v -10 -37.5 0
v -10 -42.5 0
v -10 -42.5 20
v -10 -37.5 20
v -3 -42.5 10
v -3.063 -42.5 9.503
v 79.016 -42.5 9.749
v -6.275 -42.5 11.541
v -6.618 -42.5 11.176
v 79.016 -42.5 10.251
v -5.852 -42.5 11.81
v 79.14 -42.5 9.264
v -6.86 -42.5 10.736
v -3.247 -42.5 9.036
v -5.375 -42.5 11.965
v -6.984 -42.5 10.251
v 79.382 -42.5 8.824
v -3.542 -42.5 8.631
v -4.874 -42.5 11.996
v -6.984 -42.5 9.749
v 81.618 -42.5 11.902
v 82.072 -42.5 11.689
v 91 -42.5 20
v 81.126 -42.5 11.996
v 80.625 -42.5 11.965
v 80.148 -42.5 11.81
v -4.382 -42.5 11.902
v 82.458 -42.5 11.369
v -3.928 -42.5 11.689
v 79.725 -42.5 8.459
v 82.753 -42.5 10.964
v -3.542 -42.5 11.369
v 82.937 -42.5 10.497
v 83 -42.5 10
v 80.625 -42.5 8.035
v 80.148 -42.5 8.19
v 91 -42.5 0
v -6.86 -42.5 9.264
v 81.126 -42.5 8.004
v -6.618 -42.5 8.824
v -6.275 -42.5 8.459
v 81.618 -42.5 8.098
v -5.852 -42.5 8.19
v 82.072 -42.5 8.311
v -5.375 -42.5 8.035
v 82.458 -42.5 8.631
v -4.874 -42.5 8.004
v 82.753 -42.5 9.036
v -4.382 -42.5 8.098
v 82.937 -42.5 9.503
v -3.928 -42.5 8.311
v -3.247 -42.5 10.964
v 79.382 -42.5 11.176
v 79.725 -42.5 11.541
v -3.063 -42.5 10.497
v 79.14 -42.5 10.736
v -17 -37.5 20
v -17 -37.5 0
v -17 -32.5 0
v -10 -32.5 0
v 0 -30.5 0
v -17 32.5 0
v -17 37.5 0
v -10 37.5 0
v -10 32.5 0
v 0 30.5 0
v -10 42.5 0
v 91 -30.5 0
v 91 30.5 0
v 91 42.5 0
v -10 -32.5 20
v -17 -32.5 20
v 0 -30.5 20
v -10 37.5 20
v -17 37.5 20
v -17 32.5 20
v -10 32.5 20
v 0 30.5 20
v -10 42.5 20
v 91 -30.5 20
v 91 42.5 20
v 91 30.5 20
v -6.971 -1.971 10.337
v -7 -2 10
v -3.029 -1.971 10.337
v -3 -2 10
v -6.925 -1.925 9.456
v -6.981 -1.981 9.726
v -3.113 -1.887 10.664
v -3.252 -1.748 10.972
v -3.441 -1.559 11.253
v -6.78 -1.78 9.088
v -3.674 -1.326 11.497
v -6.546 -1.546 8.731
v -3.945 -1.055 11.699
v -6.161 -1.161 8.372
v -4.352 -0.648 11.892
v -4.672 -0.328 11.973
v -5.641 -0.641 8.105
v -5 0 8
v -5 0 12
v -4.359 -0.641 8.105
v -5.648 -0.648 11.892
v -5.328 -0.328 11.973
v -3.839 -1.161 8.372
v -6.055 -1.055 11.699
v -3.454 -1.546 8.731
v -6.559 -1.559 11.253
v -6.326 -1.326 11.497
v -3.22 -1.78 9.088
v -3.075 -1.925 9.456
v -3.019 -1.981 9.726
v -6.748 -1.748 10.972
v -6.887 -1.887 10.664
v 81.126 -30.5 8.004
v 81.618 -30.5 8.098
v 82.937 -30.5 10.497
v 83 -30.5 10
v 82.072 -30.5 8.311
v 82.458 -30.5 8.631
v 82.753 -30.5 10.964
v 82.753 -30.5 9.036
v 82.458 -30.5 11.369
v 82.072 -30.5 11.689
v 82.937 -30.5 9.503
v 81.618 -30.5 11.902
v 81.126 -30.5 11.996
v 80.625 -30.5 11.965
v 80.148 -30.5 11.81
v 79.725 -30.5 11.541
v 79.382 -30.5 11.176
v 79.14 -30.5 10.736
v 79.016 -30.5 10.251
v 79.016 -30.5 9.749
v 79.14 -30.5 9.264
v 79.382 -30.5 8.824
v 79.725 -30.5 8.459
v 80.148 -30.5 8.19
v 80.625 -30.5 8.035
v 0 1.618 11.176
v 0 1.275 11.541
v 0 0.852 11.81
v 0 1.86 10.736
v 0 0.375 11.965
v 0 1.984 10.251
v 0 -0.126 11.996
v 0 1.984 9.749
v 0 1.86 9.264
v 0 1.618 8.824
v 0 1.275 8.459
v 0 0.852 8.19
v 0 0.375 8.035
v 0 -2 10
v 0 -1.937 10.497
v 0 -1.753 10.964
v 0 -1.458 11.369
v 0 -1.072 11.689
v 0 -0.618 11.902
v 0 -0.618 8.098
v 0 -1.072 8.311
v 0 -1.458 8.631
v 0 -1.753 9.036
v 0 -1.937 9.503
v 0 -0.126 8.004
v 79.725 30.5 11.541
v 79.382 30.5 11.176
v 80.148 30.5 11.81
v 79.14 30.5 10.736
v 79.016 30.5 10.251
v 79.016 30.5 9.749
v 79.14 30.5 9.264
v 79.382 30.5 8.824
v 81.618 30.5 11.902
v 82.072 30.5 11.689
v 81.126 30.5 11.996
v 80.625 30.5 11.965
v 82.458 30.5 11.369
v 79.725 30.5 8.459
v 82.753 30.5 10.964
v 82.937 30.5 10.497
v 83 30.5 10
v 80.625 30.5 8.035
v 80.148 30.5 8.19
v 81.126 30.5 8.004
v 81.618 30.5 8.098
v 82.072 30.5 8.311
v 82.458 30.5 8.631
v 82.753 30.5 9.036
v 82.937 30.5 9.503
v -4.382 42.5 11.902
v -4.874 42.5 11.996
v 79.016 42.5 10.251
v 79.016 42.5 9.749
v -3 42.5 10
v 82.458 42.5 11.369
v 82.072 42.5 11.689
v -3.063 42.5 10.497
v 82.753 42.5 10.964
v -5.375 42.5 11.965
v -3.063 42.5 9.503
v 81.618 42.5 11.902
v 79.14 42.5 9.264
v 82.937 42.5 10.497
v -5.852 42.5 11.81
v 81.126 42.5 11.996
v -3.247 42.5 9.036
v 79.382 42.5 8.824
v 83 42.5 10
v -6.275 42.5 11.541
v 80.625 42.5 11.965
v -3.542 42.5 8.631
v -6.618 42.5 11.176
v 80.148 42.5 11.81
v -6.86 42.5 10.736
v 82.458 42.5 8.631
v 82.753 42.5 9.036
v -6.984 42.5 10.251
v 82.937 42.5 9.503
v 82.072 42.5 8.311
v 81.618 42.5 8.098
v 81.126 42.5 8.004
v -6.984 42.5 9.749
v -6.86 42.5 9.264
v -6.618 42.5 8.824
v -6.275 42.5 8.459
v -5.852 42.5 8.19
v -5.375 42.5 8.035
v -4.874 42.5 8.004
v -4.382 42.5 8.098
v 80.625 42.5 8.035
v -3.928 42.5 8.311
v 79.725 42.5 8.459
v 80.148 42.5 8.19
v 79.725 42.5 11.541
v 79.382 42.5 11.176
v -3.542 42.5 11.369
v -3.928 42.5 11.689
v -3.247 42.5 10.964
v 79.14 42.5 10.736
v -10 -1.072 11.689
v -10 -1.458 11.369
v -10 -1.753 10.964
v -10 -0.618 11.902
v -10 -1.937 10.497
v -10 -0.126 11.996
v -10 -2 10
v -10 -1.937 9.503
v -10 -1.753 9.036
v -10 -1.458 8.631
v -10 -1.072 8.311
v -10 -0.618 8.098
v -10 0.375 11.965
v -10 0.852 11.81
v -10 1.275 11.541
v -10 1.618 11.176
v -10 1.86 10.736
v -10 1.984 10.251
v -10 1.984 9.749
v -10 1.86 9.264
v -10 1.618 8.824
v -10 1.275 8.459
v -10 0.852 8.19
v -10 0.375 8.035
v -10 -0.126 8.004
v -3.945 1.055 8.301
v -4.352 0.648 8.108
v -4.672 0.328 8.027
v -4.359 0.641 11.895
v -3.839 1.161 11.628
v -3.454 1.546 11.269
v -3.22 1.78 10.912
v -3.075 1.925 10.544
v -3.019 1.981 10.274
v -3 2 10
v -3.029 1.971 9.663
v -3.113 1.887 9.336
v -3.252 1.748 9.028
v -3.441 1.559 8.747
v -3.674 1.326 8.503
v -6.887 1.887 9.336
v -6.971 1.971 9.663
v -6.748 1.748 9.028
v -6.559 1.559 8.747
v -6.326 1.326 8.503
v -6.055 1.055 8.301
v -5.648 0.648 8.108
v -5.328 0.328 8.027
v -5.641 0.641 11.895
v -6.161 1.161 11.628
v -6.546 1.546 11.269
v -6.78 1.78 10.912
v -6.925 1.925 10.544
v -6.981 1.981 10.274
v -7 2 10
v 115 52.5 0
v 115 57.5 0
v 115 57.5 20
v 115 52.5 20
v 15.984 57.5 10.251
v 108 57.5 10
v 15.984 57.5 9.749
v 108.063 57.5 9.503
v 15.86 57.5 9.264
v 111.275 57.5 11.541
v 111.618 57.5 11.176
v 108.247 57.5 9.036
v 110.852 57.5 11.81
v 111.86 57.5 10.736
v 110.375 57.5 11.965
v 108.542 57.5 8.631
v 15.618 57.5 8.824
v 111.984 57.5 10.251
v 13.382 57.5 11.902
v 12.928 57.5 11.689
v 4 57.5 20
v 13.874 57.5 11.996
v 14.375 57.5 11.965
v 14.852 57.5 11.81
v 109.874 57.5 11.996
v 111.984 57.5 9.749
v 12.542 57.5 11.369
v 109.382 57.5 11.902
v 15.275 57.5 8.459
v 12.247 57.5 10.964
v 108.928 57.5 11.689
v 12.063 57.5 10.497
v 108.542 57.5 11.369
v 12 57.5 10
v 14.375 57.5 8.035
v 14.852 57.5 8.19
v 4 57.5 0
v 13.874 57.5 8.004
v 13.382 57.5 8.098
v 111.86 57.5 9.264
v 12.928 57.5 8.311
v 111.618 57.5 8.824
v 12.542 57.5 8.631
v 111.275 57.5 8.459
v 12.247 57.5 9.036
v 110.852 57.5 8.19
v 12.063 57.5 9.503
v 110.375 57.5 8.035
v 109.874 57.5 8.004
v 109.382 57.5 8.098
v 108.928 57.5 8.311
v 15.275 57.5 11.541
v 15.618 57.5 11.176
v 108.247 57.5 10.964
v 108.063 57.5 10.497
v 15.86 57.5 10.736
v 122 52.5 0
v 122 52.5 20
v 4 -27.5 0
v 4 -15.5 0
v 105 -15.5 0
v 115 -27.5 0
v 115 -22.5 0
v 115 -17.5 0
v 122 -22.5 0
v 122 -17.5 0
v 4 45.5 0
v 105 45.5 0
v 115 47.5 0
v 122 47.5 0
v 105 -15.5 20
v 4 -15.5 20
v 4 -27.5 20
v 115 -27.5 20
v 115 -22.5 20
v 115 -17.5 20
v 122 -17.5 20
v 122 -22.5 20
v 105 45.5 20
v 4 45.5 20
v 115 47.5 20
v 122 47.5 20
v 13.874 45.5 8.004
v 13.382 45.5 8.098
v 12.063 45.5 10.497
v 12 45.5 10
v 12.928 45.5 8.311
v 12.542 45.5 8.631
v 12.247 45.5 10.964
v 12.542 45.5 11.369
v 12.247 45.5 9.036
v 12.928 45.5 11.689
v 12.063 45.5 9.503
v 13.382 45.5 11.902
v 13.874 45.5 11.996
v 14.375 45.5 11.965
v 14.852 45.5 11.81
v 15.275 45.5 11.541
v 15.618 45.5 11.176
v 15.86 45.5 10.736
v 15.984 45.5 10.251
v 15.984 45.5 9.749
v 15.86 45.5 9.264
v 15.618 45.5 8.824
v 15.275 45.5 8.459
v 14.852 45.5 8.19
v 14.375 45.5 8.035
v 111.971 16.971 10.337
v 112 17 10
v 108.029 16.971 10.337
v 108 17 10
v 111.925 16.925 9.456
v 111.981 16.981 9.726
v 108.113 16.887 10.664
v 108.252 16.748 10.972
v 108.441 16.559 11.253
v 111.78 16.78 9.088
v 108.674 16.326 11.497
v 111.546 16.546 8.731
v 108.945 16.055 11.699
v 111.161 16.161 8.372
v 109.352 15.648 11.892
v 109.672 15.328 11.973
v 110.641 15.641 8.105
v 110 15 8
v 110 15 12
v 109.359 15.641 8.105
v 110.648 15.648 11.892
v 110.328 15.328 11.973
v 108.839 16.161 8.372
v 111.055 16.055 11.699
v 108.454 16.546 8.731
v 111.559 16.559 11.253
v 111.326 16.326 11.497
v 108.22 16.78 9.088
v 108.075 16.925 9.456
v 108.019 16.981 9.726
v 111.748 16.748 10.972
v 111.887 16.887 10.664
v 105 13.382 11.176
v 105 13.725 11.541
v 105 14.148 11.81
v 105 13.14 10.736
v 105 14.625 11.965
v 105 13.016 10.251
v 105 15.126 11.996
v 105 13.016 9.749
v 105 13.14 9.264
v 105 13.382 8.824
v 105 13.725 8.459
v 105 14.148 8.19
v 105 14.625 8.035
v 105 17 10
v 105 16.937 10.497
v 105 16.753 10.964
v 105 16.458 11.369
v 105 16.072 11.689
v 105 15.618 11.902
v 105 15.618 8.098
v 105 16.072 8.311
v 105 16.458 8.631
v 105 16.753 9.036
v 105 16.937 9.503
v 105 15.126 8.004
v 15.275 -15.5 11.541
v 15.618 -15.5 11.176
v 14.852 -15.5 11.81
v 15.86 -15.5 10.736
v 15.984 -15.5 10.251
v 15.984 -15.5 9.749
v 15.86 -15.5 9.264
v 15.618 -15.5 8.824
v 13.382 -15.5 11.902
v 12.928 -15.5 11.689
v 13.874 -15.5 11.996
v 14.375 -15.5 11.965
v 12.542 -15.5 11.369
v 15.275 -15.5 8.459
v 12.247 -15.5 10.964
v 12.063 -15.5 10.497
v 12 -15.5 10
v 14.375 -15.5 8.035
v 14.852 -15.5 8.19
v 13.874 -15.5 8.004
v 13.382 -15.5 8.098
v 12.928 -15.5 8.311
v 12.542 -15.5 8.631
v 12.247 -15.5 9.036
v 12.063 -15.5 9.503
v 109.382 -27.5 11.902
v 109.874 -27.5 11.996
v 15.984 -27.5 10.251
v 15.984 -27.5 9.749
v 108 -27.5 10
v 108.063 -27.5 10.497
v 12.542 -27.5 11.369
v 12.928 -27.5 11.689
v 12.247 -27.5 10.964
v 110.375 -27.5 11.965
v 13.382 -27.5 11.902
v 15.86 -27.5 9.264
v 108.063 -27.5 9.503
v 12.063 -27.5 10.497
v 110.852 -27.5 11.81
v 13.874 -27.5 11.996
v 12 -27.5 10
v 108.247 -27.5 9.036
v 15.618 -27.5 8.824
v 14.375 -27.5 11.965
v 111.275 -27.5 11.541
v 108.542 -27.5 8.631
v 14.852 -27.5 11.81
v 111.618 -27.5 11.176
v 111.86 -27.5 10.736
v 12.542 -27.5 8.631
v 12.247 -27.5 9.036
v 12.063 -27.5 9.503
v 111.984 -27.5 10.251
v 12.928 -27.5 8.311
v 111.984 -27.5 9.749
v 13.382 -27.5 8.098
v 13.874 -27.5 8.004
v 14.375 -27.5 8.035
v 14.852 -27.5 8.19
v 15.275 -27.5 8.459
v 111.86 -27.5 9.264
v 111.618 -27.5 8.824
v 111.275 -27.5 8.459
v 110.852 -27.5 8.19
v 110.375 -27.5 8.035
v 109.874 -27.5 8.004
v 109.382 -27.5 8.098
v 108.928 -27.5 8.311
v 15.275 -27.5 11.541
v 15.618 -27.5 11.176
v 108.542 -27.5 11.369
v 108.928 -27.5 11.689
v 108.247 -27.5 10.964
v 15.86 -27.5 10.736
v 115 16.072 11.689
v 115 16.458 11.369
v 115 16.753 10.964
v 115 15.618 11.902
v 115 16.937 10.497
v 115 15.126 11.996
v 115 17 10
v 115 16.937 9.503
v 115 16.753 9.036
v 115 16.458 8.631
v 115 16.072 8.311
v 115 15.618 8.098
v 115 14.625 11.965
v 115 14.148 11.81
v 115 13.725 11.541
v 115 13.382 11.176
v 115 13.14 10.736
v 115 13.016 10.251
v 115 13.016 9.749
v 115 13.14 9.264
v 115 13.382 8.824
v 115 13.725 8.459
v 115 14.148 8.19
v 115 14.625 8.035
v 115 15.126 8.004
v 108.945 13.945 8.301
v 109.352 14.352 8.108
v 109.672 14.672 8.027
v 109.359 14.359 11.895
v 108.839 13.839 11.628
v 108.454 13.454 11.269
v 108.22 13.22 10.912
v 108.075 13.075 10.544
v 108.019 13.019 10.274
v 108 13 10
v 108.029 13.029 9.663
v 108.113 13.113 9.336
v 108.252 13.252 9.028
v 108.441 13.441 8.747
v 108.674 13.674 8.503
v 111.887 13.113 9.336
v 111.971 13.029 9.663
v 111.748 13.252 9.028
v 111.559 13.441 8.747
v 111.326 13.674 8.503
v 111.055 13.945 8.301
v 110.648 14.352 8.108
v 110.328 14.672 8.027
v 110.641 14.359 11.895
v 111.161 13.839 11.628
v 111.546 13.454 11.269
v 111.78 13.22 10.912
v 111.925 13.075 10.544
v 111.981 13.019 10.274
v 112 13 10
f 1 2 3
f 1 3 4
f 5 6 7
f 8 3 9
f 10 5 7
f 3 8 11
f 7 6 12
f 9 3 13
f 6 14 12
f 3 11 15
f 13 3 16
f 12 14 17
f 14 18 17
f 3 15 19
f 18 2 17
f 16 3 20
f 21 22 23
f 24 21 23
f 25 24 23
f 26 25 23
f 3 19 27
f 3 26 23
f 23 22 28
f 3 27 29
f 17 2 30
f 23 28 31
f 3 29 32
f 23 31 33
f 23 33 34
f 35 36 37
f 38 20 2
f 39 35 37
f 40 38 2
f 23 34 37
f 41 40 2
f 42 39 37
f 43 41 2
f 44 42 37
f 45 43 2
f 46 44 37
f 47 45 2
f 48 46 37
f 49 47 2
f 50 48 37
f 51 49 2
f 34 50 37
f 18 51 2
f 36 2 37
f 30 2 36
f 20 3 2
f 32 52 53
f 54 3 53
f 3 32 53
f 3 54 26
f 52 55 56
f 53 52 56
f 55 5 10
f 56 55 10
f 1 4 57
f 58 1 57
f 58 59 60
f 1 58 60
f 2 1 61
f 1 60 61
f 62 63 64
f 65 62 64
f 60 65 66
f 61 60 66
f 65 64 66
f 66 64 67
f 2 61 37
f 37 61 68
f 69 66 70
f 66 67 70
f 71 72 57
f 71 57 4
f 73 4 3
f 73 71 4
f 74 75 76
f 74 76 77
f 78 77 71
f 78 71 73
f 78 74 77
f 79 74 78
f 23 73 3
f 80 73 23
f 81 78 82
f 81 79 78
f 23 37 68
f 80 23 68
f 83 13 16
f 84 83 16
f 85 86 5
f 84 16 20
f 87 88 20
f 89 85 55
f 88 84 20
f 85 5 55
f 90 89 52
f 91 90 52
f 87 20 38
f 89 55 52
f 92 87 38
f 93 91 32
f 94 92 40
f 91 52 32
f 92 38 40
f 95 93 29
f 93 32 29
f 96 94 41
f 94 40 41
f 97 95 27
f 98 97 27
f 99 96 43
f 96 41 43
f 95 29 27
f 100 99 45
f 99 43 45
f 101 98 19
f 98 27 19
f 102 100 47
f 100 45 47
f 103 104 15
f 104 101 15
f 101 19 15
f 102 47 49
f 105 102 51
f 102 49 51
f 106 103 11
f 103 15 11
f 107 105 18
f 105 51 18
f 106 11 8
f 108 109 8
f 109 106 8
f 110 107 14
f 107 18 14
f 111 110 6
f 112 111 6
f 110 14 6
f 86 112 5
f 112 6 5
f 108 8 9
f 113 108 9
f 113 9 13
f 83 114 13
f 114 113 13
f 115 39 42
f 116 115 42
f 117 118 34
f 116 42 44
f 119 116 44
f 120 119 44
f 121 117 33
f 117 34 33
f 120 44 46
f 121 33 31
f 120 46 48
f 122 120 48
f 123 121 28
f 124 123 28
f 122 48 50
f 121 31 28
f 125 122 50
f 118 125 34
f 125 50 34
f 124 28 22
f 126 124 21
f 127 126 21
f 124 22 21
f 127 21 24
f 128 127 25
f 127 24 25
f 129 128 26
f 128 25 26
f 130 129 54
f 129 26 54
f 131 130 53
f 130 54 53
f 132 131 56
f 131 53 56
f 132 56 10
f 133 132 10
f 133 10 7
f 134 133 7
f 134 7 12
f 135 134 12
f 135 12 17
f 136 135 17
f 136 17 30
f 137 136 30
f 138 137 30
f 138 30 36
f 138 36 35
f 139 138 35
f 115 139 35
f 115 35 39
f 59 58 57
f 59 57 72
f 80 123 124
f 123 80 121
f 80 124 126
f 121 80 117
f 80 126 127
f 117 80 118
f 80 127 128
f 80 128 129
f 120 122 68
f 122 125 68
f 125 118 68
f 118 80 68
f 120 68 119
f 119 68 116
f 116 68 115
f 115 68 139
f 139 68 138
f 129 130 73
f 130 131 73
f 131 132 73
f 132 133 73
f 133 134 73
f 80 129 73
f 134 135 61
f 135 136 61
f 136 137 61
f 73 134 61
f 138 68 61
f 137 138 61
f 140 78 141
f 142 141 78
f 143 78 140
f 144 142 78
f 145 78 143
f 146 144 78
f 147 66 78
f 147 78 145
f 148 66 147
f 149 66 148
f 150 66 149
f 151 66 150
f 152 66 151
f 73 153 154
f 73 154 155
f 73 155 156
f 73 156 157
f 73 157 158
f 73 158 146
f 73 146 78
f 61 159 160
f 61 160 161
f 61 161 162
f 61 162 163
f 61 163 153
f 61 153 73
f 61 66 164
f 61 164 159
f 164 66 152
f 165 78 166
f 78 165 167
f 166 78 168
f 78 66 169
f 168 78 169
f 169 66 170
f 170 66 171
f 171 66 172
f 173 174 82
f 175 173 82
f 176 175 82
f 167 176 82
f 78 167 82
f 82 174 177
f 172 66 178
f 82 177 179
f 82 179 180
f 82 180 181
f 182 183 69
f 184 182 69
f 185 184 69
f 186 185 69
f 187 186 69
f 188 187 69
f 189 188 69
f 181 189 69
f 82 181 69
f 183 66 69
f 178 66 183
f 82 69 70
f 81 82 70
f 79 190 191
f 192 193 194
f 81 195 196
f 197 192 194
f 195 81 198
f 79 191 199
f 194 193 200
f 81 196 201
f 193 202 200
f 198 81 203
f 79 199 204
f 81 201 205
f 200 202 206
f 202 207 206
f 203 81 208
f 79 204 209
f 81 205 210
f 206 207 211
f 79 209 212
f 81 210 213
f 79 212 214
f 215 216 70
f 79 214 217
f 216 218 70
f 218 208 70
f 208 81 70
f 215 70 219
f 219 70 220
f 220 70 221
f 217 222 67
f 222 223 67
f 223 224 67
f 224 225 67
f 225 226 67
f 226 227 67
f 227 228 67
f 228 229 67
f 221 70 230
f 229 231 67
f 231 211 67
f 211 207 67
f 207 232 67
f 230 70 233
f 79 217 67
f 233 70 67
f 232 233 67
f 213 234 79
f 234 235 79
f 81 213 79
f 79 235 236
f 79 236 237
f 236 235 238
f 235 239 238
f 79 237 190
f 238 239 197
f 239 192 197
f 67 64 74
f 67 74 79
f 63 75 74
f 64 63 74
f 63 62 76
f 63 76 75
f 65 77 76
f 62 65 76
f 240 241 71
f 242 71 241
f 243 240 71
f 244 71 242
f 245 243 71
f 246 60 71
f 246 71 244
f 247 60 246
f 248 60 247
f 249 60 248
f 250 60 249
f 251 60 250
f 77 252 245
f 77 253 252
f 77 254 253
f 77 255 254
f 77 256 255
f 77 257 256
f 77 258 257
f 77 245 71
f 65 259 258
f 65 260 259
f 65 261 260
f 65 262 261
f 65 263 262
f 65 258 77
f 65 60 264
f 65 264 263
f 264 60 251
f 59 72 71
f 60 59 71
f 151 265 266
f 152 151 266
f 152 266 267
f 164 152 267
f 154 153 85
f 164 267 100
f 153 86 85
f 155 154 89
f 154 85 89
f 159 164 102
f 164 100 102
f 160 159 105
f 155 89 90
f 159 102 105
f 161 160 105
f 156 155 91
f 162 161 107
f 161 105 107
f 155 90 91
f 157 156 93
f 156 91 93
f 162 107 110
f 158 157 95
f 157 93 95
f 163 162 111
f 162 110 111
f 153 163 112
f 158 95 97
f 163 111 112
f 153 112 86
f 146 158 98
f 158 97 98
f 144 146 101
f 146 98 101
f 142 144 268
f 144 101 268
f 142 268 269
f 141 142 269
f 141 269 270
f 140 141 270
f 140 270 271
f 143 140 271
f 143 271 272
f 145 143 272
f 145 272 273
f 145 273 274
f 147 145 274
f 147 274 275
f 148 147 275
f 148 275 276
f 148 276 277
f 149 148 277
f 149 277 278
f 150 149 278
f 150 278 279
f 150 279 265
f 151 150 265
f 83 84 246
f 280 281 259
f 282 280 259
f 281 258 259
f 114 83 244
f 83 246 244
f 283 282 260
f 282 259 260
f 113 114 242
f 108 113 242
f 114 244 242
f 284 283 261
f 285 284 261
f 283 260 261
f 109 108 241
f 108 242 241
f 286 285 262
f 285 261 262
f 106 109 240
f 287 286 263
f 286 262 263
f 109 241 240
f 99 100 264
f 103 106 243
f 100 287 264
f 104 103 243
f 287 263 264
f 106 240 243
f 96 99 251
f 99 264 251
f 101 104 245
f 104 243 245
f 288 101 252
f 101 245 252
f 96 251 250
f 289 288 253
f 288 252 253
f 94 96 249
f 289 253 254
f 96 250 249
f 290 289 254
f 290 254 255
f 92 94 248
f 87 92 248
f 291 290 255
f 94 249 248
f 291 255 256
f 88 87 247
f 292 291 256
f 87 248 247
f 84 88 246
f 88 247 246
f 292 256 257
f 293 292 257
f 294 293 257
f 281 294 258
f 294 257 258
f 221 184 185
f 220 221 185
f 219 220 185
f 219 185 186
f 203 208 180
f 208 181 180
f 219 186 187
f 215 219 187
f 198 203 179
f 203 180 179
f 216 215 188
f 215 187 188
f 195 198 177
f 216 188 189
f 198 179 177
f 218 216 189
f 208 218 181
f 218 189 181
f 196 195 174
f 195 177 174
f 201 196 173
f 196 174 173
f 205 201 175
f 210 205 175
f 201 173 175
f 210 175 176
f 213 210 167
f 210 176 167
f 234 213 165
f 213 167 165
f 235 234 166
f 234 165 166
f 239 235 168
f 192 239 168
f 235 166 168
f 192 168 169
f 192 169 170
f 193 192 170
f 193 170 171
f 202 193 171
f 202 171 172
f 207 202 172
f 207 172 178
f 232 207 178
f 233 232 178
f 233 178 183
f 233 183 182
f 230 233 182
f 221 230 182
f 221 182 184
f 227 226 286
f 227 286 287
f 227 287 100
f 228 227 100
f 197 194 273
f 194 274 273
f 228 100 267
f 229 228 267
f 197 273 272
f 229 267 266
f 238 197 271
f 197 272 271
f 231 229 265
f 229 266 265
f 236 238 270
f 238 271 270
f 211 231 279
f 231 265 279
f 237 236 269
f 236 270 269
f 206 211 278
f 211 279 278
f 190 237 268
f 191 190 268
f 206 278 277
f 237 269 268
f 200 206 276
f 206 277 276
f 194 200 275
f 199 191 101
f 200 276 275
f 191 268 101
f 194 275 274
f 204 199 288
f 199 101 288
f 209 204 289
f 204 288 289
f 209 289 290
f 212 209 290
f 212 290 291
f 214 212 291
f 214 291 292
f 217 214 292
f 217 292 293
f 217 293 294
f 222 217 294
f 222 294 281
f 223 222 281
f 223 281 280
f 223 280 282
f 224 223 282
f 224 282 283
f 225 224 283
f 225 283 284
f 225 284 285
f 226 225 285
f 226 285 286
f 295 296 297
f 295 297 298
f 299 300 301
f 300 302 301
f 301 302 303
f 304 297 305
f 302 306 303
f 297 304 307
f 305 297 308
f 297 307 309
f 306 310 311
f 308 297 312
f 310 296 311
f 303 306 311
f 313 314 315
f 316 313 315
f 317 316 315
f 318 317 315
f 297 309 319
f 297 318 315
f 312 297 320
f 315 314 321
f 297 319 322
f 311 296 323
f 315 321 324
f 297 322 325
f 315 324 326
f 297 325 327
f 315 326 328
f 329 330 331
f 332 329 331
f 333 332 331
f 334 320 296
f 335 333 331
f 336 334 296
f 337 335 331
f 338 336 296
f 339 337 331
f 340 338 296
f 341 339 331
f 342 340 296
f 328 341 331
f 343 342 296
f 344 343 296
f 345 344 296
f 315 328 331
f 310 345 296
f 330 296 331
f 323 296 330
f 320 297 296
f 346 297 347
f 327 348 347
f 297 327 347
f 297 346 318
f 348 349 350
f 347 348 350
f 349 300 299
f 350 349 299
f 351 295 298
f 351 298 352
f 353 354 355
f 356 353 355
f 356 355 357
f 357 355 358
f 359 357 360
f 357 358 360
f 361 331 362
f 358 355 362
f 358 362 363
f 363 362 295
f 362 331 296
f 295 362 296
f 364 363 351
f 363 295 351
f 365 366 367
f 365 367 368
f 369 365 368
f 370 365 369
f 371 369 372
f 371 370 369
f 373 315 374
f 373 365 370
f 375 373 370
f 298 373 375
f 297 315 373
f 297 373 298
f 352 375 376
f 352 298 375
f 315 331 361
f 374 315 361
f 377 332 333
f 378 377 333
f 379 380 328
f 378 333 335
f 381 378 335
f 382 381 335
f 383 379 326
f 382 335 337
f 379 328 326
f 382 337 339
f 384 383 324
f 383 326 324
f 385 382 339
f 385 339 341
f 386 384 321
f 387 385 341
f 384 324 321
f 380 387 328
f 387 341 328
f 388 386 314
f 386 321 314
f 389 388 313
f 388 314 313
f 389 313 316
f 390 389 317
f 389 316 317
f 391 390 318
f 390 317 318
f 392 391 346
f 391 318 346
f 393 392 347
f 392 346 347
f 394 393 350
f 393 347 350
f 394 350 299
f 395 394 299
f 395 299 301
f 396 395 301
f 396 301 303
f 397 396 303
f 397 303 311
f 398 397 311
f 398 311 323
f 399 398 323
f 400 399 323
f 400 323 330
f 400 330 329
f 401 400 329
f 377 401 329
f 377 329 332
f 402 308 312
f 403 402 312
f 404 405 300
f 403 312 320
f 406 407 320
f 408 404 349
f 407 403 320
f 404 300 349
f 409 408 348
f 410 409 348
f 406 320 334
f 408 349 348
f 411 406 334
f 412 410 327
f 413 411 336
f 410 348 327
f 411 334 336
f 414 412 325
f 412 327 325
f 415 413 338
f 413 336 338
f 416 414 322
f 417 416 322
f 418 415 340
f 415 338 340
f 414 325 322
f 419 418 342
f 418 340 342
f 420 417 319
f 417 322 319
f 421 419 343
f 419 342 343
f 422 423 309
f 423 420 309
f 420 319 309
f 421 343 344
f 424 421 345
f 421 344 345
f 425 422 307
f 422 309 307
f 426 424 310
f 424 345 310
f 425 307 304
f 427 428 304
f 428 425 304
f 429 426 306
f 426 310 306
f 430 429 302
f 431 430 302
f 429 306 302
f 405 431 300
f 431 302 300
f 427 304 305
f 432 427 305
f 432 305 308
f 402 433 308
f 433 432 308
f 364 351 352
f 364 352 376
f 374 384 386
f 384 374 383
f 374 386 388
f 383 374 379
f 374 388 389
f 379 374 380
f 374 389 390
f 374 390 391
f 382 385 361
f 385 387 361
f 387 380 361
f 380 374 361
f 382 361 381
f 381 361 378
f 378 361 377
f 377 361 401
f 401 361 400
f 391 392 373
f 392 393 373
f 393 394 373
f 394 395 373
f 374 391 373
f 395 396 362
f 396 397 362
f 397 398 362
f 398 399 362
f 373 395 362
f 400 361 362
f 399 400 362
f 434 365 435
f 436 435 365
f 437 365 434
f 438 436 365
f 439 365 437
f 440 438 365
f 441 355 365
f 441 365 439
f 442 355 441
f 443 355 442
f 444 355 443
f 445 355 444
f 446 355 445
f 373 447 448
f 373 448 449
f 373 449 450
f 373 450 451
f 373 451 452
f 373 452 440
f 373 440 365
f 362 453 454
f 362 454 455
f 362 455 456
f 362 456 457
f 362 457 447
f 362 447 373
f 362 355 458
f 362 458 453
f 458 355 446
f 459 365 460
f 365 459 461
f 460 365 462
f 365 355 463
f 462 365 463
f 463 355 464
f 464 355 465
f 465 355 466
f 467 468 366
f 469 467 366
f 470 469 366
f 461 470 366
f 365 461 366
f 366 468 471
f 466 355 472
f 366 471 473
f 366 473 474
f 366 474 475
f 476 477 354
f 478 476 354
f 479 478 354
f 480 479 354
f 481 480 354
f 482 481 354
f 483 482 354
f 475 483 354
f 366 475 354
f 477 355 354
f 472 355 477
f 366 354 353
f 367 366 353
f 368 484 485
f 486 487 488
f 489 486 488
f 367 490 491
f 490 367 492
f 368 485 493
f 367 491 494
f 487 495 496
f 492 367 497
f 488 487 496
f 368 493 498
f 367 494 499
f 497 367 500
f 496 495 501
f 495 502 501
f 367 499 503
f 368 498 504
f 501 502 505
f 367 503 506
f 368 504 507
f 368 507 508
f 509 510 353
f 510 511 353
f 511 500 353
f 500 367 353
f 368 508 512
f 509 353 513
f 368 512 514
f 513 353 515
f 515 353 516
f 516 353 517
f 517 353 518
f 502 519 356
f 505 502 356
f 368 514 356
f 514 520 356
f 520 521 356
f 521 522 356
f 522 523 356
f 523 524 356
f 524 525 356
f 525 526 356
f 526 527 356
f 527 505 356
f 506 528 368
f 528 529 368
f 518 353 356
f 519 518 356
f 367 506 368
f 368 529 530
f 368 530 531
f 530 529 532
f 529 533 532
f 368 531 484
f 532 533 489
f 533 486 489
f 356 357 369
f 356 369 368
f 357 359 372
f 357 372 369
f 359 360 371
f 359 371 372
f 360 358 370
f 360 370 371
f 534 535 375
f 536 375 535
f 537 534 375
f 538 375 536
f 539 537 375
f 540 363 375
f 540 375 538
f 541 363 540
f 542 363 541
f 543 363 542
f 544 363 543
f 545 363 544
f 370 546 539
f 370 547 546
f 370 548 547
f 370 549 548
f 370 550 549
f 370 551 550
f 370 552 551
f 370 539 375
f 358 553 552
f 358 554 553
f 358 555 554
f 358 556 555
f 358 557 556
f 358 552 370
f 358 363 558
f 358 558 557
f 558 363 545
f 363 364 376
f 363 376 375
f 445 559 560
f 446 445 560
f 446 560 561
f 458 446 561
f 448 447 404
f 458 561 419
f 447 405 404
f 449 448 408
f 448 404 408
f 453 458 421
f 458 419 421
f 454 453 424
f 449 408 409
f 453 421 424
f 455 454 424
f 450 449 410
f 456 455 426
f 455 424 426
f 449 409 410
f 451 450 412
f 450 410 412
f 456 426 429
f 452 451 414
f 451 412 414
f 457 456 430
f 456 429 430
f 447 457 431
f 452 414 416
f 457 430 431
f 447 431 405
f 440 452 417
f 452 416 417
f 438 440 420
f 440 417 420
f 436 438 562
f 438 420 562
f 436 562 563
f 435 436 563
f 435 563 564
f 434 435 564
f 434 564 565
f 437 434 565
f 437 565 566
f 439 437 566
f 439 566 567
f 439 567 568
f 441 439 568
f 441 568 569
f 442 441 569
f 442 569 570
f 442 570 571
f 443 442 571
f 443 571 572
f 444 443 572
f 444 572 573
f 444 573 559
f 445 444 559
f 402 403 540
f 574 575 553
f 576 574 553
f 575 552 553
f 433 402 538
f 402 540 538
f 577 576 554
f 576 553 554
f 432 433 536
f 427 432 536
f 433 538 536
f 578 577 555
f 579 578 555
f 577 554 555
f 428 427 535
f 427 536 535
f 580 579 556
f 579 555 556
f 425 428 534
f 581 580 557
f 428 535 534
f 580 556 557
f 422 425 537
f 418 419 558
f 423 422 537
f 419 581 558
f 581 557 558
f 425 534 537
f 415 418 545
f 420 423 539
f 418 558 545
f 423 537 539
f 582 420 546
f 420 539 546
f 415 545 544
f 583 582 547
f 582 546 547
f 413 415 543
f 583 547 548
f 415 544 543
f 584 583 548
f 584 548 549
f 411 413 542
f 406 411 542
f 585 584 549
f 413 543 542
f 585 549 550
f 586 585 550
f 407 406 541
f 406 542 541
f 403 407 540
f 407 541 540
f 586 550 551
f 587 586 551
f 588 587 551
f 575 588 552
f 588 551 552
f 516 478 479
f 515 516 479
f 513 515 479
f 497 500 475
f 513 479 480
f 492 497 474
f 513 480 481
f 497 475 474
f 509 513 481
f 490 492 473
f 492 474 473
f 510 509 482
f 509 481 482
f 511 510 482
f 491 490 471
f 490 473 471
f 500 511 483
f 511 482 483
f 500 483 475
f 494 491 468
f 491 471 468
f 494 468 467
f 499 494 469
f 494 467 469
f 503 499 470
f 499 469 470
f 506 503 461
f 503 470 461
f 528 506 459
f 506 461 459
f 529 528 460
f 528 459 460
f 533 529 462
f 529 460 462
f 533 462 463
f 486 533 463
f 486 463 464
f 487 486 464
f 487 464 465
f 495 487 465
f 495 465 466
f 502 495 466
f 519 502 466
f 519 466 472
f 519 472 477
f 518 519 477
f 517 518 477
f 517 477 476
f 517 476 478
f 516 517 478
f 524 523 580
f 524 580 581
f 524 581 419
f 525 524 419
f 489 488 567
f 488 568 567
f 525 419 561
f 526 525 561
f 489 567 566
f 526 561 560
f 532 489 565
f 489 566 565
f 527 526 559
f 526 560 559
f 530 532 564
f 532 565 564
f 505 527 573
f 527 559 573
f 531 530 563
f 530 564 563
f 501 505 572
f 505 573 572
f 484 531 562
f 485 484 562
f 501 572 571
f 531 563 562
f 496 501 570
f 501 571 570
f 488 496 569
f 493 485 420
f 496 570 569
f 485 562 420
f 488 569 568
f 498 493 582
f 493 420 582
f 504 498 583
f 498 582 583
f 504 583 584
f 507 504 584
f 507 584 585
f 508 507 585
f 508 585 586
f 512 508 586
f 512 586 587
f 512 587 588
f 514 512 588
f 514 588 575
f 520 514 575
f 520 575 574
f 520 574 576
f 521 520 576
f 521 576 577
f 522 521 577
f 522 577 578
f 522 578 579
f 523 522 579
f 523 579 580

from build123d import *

# Parameters (mm, degrees)
PAD_DEPTH       = 20
SKETCH004_R     = 2
POCKET002_DEPTH = 101.001
SKETCH005_R     = 2
POCKET003_DEPTH = 85.001
PAD001_DEPTH    = 20
SKETCH007_R     = 2
POCKET004_DEPTH = 111.001
SKETCH008_R     = 2
POCKET005_DEPTH = 85.001


with BuildPart() as soporte_agujero_superior_lateral:
    # Sketch → Pad (new body)
    with BuildSketch(Plane.XY):
        Polygon((-10, -42.5), (91, -42.5), (91, -30.5), (0, -30.5), (0, 30.5), (91, 30.5), (91, 42.5), (-10, 42.5), (-10, 37.5), (-17, 37.5), (-17, 32.5), (-10, 32.5), (-10, -32.5), (-17, -32.5), (-17, -37.5), (-10, -37.5), align=None)
    extrude(amount=PAD_DEPTH)

    # Sketch004 → Pocket002 (cut, through all)
    with BuildSketch(Plane(origin=(-10, 0, 0), x_dir=(0, -1, 0), z_dir=(-1, 0, 0))):
        with Locations((0, 10)):
            Circle(SKETCH004_R)
    extrude(amount=-POCKET002_DEPTH, mode=Mode.SUBTRACT)

    # Sketch005 → Pocket003 (cut, through all)
    with BuildSketch(Plane.XZ.offset(42.5)):
        with Locations((-5, 10)):
            Circle(SKETCH005_R)
        with Locations((81, 10)):
            Circle(SKETCH005_R)
    extrude(amount=-POCKET003_DEPTH, mode=Mode.SUBTRACT)


with BuildPart() as soporte_agujero_superior_lateral001:
    # Sketch006 → Pad001 (new body)
    with BuildSketch(Plane(origin=(105, 15, 0), x_dir=(-1, 0, 0), z_dir=(0, 0, 1))):
        Polygon((-10, -42.5), (101, -42.5), (101, -30.5), (0, -30.5), (0, 30.5), (101, 30.5), (101, 42.5), (-10, 42.5), (-10, 37.5), (-17, 37.5), (-17, 32.5), (-10, 32.5), (-10, -32.5), (-17, -32.5), (-17, -37.5), (-10, -37.5), align=None)
    extrude(amount=PAD001_DEPTH)

    # Sketch007 → Pocket004 (cut, through all)
    with BuildSketch(Plane(origin=(115, 15, 0), x_dir=(0, 1, 0), z_dir=(1, 0, 0))):
        with Locations((0, 10)):
            Circle(SKETCH007_R)
    extrude(amount=-POCKET004_DEPTH, mode=Mode.SUBTRACT)

    # Sketch008 → Pocket005 (cut, through all)
    with BuildSketch(Plane(origin=(105, 57.5, 0), x_dir=(-1, 0, 0), z_dir=(0, 1, 0))):
        with Locations((-5, 10)):
            Circle(SKETCH008_R)
        with Locations((91, 10)):
            Circle(SKETCH008_R)
    extrude(amount=-POCKET005_DEPTH, mode=Mode.SUBTRACT)


solid = Compound([soporte_agujero_superior_lateral.part, soporte_agujero_superior_lateral001.part])
